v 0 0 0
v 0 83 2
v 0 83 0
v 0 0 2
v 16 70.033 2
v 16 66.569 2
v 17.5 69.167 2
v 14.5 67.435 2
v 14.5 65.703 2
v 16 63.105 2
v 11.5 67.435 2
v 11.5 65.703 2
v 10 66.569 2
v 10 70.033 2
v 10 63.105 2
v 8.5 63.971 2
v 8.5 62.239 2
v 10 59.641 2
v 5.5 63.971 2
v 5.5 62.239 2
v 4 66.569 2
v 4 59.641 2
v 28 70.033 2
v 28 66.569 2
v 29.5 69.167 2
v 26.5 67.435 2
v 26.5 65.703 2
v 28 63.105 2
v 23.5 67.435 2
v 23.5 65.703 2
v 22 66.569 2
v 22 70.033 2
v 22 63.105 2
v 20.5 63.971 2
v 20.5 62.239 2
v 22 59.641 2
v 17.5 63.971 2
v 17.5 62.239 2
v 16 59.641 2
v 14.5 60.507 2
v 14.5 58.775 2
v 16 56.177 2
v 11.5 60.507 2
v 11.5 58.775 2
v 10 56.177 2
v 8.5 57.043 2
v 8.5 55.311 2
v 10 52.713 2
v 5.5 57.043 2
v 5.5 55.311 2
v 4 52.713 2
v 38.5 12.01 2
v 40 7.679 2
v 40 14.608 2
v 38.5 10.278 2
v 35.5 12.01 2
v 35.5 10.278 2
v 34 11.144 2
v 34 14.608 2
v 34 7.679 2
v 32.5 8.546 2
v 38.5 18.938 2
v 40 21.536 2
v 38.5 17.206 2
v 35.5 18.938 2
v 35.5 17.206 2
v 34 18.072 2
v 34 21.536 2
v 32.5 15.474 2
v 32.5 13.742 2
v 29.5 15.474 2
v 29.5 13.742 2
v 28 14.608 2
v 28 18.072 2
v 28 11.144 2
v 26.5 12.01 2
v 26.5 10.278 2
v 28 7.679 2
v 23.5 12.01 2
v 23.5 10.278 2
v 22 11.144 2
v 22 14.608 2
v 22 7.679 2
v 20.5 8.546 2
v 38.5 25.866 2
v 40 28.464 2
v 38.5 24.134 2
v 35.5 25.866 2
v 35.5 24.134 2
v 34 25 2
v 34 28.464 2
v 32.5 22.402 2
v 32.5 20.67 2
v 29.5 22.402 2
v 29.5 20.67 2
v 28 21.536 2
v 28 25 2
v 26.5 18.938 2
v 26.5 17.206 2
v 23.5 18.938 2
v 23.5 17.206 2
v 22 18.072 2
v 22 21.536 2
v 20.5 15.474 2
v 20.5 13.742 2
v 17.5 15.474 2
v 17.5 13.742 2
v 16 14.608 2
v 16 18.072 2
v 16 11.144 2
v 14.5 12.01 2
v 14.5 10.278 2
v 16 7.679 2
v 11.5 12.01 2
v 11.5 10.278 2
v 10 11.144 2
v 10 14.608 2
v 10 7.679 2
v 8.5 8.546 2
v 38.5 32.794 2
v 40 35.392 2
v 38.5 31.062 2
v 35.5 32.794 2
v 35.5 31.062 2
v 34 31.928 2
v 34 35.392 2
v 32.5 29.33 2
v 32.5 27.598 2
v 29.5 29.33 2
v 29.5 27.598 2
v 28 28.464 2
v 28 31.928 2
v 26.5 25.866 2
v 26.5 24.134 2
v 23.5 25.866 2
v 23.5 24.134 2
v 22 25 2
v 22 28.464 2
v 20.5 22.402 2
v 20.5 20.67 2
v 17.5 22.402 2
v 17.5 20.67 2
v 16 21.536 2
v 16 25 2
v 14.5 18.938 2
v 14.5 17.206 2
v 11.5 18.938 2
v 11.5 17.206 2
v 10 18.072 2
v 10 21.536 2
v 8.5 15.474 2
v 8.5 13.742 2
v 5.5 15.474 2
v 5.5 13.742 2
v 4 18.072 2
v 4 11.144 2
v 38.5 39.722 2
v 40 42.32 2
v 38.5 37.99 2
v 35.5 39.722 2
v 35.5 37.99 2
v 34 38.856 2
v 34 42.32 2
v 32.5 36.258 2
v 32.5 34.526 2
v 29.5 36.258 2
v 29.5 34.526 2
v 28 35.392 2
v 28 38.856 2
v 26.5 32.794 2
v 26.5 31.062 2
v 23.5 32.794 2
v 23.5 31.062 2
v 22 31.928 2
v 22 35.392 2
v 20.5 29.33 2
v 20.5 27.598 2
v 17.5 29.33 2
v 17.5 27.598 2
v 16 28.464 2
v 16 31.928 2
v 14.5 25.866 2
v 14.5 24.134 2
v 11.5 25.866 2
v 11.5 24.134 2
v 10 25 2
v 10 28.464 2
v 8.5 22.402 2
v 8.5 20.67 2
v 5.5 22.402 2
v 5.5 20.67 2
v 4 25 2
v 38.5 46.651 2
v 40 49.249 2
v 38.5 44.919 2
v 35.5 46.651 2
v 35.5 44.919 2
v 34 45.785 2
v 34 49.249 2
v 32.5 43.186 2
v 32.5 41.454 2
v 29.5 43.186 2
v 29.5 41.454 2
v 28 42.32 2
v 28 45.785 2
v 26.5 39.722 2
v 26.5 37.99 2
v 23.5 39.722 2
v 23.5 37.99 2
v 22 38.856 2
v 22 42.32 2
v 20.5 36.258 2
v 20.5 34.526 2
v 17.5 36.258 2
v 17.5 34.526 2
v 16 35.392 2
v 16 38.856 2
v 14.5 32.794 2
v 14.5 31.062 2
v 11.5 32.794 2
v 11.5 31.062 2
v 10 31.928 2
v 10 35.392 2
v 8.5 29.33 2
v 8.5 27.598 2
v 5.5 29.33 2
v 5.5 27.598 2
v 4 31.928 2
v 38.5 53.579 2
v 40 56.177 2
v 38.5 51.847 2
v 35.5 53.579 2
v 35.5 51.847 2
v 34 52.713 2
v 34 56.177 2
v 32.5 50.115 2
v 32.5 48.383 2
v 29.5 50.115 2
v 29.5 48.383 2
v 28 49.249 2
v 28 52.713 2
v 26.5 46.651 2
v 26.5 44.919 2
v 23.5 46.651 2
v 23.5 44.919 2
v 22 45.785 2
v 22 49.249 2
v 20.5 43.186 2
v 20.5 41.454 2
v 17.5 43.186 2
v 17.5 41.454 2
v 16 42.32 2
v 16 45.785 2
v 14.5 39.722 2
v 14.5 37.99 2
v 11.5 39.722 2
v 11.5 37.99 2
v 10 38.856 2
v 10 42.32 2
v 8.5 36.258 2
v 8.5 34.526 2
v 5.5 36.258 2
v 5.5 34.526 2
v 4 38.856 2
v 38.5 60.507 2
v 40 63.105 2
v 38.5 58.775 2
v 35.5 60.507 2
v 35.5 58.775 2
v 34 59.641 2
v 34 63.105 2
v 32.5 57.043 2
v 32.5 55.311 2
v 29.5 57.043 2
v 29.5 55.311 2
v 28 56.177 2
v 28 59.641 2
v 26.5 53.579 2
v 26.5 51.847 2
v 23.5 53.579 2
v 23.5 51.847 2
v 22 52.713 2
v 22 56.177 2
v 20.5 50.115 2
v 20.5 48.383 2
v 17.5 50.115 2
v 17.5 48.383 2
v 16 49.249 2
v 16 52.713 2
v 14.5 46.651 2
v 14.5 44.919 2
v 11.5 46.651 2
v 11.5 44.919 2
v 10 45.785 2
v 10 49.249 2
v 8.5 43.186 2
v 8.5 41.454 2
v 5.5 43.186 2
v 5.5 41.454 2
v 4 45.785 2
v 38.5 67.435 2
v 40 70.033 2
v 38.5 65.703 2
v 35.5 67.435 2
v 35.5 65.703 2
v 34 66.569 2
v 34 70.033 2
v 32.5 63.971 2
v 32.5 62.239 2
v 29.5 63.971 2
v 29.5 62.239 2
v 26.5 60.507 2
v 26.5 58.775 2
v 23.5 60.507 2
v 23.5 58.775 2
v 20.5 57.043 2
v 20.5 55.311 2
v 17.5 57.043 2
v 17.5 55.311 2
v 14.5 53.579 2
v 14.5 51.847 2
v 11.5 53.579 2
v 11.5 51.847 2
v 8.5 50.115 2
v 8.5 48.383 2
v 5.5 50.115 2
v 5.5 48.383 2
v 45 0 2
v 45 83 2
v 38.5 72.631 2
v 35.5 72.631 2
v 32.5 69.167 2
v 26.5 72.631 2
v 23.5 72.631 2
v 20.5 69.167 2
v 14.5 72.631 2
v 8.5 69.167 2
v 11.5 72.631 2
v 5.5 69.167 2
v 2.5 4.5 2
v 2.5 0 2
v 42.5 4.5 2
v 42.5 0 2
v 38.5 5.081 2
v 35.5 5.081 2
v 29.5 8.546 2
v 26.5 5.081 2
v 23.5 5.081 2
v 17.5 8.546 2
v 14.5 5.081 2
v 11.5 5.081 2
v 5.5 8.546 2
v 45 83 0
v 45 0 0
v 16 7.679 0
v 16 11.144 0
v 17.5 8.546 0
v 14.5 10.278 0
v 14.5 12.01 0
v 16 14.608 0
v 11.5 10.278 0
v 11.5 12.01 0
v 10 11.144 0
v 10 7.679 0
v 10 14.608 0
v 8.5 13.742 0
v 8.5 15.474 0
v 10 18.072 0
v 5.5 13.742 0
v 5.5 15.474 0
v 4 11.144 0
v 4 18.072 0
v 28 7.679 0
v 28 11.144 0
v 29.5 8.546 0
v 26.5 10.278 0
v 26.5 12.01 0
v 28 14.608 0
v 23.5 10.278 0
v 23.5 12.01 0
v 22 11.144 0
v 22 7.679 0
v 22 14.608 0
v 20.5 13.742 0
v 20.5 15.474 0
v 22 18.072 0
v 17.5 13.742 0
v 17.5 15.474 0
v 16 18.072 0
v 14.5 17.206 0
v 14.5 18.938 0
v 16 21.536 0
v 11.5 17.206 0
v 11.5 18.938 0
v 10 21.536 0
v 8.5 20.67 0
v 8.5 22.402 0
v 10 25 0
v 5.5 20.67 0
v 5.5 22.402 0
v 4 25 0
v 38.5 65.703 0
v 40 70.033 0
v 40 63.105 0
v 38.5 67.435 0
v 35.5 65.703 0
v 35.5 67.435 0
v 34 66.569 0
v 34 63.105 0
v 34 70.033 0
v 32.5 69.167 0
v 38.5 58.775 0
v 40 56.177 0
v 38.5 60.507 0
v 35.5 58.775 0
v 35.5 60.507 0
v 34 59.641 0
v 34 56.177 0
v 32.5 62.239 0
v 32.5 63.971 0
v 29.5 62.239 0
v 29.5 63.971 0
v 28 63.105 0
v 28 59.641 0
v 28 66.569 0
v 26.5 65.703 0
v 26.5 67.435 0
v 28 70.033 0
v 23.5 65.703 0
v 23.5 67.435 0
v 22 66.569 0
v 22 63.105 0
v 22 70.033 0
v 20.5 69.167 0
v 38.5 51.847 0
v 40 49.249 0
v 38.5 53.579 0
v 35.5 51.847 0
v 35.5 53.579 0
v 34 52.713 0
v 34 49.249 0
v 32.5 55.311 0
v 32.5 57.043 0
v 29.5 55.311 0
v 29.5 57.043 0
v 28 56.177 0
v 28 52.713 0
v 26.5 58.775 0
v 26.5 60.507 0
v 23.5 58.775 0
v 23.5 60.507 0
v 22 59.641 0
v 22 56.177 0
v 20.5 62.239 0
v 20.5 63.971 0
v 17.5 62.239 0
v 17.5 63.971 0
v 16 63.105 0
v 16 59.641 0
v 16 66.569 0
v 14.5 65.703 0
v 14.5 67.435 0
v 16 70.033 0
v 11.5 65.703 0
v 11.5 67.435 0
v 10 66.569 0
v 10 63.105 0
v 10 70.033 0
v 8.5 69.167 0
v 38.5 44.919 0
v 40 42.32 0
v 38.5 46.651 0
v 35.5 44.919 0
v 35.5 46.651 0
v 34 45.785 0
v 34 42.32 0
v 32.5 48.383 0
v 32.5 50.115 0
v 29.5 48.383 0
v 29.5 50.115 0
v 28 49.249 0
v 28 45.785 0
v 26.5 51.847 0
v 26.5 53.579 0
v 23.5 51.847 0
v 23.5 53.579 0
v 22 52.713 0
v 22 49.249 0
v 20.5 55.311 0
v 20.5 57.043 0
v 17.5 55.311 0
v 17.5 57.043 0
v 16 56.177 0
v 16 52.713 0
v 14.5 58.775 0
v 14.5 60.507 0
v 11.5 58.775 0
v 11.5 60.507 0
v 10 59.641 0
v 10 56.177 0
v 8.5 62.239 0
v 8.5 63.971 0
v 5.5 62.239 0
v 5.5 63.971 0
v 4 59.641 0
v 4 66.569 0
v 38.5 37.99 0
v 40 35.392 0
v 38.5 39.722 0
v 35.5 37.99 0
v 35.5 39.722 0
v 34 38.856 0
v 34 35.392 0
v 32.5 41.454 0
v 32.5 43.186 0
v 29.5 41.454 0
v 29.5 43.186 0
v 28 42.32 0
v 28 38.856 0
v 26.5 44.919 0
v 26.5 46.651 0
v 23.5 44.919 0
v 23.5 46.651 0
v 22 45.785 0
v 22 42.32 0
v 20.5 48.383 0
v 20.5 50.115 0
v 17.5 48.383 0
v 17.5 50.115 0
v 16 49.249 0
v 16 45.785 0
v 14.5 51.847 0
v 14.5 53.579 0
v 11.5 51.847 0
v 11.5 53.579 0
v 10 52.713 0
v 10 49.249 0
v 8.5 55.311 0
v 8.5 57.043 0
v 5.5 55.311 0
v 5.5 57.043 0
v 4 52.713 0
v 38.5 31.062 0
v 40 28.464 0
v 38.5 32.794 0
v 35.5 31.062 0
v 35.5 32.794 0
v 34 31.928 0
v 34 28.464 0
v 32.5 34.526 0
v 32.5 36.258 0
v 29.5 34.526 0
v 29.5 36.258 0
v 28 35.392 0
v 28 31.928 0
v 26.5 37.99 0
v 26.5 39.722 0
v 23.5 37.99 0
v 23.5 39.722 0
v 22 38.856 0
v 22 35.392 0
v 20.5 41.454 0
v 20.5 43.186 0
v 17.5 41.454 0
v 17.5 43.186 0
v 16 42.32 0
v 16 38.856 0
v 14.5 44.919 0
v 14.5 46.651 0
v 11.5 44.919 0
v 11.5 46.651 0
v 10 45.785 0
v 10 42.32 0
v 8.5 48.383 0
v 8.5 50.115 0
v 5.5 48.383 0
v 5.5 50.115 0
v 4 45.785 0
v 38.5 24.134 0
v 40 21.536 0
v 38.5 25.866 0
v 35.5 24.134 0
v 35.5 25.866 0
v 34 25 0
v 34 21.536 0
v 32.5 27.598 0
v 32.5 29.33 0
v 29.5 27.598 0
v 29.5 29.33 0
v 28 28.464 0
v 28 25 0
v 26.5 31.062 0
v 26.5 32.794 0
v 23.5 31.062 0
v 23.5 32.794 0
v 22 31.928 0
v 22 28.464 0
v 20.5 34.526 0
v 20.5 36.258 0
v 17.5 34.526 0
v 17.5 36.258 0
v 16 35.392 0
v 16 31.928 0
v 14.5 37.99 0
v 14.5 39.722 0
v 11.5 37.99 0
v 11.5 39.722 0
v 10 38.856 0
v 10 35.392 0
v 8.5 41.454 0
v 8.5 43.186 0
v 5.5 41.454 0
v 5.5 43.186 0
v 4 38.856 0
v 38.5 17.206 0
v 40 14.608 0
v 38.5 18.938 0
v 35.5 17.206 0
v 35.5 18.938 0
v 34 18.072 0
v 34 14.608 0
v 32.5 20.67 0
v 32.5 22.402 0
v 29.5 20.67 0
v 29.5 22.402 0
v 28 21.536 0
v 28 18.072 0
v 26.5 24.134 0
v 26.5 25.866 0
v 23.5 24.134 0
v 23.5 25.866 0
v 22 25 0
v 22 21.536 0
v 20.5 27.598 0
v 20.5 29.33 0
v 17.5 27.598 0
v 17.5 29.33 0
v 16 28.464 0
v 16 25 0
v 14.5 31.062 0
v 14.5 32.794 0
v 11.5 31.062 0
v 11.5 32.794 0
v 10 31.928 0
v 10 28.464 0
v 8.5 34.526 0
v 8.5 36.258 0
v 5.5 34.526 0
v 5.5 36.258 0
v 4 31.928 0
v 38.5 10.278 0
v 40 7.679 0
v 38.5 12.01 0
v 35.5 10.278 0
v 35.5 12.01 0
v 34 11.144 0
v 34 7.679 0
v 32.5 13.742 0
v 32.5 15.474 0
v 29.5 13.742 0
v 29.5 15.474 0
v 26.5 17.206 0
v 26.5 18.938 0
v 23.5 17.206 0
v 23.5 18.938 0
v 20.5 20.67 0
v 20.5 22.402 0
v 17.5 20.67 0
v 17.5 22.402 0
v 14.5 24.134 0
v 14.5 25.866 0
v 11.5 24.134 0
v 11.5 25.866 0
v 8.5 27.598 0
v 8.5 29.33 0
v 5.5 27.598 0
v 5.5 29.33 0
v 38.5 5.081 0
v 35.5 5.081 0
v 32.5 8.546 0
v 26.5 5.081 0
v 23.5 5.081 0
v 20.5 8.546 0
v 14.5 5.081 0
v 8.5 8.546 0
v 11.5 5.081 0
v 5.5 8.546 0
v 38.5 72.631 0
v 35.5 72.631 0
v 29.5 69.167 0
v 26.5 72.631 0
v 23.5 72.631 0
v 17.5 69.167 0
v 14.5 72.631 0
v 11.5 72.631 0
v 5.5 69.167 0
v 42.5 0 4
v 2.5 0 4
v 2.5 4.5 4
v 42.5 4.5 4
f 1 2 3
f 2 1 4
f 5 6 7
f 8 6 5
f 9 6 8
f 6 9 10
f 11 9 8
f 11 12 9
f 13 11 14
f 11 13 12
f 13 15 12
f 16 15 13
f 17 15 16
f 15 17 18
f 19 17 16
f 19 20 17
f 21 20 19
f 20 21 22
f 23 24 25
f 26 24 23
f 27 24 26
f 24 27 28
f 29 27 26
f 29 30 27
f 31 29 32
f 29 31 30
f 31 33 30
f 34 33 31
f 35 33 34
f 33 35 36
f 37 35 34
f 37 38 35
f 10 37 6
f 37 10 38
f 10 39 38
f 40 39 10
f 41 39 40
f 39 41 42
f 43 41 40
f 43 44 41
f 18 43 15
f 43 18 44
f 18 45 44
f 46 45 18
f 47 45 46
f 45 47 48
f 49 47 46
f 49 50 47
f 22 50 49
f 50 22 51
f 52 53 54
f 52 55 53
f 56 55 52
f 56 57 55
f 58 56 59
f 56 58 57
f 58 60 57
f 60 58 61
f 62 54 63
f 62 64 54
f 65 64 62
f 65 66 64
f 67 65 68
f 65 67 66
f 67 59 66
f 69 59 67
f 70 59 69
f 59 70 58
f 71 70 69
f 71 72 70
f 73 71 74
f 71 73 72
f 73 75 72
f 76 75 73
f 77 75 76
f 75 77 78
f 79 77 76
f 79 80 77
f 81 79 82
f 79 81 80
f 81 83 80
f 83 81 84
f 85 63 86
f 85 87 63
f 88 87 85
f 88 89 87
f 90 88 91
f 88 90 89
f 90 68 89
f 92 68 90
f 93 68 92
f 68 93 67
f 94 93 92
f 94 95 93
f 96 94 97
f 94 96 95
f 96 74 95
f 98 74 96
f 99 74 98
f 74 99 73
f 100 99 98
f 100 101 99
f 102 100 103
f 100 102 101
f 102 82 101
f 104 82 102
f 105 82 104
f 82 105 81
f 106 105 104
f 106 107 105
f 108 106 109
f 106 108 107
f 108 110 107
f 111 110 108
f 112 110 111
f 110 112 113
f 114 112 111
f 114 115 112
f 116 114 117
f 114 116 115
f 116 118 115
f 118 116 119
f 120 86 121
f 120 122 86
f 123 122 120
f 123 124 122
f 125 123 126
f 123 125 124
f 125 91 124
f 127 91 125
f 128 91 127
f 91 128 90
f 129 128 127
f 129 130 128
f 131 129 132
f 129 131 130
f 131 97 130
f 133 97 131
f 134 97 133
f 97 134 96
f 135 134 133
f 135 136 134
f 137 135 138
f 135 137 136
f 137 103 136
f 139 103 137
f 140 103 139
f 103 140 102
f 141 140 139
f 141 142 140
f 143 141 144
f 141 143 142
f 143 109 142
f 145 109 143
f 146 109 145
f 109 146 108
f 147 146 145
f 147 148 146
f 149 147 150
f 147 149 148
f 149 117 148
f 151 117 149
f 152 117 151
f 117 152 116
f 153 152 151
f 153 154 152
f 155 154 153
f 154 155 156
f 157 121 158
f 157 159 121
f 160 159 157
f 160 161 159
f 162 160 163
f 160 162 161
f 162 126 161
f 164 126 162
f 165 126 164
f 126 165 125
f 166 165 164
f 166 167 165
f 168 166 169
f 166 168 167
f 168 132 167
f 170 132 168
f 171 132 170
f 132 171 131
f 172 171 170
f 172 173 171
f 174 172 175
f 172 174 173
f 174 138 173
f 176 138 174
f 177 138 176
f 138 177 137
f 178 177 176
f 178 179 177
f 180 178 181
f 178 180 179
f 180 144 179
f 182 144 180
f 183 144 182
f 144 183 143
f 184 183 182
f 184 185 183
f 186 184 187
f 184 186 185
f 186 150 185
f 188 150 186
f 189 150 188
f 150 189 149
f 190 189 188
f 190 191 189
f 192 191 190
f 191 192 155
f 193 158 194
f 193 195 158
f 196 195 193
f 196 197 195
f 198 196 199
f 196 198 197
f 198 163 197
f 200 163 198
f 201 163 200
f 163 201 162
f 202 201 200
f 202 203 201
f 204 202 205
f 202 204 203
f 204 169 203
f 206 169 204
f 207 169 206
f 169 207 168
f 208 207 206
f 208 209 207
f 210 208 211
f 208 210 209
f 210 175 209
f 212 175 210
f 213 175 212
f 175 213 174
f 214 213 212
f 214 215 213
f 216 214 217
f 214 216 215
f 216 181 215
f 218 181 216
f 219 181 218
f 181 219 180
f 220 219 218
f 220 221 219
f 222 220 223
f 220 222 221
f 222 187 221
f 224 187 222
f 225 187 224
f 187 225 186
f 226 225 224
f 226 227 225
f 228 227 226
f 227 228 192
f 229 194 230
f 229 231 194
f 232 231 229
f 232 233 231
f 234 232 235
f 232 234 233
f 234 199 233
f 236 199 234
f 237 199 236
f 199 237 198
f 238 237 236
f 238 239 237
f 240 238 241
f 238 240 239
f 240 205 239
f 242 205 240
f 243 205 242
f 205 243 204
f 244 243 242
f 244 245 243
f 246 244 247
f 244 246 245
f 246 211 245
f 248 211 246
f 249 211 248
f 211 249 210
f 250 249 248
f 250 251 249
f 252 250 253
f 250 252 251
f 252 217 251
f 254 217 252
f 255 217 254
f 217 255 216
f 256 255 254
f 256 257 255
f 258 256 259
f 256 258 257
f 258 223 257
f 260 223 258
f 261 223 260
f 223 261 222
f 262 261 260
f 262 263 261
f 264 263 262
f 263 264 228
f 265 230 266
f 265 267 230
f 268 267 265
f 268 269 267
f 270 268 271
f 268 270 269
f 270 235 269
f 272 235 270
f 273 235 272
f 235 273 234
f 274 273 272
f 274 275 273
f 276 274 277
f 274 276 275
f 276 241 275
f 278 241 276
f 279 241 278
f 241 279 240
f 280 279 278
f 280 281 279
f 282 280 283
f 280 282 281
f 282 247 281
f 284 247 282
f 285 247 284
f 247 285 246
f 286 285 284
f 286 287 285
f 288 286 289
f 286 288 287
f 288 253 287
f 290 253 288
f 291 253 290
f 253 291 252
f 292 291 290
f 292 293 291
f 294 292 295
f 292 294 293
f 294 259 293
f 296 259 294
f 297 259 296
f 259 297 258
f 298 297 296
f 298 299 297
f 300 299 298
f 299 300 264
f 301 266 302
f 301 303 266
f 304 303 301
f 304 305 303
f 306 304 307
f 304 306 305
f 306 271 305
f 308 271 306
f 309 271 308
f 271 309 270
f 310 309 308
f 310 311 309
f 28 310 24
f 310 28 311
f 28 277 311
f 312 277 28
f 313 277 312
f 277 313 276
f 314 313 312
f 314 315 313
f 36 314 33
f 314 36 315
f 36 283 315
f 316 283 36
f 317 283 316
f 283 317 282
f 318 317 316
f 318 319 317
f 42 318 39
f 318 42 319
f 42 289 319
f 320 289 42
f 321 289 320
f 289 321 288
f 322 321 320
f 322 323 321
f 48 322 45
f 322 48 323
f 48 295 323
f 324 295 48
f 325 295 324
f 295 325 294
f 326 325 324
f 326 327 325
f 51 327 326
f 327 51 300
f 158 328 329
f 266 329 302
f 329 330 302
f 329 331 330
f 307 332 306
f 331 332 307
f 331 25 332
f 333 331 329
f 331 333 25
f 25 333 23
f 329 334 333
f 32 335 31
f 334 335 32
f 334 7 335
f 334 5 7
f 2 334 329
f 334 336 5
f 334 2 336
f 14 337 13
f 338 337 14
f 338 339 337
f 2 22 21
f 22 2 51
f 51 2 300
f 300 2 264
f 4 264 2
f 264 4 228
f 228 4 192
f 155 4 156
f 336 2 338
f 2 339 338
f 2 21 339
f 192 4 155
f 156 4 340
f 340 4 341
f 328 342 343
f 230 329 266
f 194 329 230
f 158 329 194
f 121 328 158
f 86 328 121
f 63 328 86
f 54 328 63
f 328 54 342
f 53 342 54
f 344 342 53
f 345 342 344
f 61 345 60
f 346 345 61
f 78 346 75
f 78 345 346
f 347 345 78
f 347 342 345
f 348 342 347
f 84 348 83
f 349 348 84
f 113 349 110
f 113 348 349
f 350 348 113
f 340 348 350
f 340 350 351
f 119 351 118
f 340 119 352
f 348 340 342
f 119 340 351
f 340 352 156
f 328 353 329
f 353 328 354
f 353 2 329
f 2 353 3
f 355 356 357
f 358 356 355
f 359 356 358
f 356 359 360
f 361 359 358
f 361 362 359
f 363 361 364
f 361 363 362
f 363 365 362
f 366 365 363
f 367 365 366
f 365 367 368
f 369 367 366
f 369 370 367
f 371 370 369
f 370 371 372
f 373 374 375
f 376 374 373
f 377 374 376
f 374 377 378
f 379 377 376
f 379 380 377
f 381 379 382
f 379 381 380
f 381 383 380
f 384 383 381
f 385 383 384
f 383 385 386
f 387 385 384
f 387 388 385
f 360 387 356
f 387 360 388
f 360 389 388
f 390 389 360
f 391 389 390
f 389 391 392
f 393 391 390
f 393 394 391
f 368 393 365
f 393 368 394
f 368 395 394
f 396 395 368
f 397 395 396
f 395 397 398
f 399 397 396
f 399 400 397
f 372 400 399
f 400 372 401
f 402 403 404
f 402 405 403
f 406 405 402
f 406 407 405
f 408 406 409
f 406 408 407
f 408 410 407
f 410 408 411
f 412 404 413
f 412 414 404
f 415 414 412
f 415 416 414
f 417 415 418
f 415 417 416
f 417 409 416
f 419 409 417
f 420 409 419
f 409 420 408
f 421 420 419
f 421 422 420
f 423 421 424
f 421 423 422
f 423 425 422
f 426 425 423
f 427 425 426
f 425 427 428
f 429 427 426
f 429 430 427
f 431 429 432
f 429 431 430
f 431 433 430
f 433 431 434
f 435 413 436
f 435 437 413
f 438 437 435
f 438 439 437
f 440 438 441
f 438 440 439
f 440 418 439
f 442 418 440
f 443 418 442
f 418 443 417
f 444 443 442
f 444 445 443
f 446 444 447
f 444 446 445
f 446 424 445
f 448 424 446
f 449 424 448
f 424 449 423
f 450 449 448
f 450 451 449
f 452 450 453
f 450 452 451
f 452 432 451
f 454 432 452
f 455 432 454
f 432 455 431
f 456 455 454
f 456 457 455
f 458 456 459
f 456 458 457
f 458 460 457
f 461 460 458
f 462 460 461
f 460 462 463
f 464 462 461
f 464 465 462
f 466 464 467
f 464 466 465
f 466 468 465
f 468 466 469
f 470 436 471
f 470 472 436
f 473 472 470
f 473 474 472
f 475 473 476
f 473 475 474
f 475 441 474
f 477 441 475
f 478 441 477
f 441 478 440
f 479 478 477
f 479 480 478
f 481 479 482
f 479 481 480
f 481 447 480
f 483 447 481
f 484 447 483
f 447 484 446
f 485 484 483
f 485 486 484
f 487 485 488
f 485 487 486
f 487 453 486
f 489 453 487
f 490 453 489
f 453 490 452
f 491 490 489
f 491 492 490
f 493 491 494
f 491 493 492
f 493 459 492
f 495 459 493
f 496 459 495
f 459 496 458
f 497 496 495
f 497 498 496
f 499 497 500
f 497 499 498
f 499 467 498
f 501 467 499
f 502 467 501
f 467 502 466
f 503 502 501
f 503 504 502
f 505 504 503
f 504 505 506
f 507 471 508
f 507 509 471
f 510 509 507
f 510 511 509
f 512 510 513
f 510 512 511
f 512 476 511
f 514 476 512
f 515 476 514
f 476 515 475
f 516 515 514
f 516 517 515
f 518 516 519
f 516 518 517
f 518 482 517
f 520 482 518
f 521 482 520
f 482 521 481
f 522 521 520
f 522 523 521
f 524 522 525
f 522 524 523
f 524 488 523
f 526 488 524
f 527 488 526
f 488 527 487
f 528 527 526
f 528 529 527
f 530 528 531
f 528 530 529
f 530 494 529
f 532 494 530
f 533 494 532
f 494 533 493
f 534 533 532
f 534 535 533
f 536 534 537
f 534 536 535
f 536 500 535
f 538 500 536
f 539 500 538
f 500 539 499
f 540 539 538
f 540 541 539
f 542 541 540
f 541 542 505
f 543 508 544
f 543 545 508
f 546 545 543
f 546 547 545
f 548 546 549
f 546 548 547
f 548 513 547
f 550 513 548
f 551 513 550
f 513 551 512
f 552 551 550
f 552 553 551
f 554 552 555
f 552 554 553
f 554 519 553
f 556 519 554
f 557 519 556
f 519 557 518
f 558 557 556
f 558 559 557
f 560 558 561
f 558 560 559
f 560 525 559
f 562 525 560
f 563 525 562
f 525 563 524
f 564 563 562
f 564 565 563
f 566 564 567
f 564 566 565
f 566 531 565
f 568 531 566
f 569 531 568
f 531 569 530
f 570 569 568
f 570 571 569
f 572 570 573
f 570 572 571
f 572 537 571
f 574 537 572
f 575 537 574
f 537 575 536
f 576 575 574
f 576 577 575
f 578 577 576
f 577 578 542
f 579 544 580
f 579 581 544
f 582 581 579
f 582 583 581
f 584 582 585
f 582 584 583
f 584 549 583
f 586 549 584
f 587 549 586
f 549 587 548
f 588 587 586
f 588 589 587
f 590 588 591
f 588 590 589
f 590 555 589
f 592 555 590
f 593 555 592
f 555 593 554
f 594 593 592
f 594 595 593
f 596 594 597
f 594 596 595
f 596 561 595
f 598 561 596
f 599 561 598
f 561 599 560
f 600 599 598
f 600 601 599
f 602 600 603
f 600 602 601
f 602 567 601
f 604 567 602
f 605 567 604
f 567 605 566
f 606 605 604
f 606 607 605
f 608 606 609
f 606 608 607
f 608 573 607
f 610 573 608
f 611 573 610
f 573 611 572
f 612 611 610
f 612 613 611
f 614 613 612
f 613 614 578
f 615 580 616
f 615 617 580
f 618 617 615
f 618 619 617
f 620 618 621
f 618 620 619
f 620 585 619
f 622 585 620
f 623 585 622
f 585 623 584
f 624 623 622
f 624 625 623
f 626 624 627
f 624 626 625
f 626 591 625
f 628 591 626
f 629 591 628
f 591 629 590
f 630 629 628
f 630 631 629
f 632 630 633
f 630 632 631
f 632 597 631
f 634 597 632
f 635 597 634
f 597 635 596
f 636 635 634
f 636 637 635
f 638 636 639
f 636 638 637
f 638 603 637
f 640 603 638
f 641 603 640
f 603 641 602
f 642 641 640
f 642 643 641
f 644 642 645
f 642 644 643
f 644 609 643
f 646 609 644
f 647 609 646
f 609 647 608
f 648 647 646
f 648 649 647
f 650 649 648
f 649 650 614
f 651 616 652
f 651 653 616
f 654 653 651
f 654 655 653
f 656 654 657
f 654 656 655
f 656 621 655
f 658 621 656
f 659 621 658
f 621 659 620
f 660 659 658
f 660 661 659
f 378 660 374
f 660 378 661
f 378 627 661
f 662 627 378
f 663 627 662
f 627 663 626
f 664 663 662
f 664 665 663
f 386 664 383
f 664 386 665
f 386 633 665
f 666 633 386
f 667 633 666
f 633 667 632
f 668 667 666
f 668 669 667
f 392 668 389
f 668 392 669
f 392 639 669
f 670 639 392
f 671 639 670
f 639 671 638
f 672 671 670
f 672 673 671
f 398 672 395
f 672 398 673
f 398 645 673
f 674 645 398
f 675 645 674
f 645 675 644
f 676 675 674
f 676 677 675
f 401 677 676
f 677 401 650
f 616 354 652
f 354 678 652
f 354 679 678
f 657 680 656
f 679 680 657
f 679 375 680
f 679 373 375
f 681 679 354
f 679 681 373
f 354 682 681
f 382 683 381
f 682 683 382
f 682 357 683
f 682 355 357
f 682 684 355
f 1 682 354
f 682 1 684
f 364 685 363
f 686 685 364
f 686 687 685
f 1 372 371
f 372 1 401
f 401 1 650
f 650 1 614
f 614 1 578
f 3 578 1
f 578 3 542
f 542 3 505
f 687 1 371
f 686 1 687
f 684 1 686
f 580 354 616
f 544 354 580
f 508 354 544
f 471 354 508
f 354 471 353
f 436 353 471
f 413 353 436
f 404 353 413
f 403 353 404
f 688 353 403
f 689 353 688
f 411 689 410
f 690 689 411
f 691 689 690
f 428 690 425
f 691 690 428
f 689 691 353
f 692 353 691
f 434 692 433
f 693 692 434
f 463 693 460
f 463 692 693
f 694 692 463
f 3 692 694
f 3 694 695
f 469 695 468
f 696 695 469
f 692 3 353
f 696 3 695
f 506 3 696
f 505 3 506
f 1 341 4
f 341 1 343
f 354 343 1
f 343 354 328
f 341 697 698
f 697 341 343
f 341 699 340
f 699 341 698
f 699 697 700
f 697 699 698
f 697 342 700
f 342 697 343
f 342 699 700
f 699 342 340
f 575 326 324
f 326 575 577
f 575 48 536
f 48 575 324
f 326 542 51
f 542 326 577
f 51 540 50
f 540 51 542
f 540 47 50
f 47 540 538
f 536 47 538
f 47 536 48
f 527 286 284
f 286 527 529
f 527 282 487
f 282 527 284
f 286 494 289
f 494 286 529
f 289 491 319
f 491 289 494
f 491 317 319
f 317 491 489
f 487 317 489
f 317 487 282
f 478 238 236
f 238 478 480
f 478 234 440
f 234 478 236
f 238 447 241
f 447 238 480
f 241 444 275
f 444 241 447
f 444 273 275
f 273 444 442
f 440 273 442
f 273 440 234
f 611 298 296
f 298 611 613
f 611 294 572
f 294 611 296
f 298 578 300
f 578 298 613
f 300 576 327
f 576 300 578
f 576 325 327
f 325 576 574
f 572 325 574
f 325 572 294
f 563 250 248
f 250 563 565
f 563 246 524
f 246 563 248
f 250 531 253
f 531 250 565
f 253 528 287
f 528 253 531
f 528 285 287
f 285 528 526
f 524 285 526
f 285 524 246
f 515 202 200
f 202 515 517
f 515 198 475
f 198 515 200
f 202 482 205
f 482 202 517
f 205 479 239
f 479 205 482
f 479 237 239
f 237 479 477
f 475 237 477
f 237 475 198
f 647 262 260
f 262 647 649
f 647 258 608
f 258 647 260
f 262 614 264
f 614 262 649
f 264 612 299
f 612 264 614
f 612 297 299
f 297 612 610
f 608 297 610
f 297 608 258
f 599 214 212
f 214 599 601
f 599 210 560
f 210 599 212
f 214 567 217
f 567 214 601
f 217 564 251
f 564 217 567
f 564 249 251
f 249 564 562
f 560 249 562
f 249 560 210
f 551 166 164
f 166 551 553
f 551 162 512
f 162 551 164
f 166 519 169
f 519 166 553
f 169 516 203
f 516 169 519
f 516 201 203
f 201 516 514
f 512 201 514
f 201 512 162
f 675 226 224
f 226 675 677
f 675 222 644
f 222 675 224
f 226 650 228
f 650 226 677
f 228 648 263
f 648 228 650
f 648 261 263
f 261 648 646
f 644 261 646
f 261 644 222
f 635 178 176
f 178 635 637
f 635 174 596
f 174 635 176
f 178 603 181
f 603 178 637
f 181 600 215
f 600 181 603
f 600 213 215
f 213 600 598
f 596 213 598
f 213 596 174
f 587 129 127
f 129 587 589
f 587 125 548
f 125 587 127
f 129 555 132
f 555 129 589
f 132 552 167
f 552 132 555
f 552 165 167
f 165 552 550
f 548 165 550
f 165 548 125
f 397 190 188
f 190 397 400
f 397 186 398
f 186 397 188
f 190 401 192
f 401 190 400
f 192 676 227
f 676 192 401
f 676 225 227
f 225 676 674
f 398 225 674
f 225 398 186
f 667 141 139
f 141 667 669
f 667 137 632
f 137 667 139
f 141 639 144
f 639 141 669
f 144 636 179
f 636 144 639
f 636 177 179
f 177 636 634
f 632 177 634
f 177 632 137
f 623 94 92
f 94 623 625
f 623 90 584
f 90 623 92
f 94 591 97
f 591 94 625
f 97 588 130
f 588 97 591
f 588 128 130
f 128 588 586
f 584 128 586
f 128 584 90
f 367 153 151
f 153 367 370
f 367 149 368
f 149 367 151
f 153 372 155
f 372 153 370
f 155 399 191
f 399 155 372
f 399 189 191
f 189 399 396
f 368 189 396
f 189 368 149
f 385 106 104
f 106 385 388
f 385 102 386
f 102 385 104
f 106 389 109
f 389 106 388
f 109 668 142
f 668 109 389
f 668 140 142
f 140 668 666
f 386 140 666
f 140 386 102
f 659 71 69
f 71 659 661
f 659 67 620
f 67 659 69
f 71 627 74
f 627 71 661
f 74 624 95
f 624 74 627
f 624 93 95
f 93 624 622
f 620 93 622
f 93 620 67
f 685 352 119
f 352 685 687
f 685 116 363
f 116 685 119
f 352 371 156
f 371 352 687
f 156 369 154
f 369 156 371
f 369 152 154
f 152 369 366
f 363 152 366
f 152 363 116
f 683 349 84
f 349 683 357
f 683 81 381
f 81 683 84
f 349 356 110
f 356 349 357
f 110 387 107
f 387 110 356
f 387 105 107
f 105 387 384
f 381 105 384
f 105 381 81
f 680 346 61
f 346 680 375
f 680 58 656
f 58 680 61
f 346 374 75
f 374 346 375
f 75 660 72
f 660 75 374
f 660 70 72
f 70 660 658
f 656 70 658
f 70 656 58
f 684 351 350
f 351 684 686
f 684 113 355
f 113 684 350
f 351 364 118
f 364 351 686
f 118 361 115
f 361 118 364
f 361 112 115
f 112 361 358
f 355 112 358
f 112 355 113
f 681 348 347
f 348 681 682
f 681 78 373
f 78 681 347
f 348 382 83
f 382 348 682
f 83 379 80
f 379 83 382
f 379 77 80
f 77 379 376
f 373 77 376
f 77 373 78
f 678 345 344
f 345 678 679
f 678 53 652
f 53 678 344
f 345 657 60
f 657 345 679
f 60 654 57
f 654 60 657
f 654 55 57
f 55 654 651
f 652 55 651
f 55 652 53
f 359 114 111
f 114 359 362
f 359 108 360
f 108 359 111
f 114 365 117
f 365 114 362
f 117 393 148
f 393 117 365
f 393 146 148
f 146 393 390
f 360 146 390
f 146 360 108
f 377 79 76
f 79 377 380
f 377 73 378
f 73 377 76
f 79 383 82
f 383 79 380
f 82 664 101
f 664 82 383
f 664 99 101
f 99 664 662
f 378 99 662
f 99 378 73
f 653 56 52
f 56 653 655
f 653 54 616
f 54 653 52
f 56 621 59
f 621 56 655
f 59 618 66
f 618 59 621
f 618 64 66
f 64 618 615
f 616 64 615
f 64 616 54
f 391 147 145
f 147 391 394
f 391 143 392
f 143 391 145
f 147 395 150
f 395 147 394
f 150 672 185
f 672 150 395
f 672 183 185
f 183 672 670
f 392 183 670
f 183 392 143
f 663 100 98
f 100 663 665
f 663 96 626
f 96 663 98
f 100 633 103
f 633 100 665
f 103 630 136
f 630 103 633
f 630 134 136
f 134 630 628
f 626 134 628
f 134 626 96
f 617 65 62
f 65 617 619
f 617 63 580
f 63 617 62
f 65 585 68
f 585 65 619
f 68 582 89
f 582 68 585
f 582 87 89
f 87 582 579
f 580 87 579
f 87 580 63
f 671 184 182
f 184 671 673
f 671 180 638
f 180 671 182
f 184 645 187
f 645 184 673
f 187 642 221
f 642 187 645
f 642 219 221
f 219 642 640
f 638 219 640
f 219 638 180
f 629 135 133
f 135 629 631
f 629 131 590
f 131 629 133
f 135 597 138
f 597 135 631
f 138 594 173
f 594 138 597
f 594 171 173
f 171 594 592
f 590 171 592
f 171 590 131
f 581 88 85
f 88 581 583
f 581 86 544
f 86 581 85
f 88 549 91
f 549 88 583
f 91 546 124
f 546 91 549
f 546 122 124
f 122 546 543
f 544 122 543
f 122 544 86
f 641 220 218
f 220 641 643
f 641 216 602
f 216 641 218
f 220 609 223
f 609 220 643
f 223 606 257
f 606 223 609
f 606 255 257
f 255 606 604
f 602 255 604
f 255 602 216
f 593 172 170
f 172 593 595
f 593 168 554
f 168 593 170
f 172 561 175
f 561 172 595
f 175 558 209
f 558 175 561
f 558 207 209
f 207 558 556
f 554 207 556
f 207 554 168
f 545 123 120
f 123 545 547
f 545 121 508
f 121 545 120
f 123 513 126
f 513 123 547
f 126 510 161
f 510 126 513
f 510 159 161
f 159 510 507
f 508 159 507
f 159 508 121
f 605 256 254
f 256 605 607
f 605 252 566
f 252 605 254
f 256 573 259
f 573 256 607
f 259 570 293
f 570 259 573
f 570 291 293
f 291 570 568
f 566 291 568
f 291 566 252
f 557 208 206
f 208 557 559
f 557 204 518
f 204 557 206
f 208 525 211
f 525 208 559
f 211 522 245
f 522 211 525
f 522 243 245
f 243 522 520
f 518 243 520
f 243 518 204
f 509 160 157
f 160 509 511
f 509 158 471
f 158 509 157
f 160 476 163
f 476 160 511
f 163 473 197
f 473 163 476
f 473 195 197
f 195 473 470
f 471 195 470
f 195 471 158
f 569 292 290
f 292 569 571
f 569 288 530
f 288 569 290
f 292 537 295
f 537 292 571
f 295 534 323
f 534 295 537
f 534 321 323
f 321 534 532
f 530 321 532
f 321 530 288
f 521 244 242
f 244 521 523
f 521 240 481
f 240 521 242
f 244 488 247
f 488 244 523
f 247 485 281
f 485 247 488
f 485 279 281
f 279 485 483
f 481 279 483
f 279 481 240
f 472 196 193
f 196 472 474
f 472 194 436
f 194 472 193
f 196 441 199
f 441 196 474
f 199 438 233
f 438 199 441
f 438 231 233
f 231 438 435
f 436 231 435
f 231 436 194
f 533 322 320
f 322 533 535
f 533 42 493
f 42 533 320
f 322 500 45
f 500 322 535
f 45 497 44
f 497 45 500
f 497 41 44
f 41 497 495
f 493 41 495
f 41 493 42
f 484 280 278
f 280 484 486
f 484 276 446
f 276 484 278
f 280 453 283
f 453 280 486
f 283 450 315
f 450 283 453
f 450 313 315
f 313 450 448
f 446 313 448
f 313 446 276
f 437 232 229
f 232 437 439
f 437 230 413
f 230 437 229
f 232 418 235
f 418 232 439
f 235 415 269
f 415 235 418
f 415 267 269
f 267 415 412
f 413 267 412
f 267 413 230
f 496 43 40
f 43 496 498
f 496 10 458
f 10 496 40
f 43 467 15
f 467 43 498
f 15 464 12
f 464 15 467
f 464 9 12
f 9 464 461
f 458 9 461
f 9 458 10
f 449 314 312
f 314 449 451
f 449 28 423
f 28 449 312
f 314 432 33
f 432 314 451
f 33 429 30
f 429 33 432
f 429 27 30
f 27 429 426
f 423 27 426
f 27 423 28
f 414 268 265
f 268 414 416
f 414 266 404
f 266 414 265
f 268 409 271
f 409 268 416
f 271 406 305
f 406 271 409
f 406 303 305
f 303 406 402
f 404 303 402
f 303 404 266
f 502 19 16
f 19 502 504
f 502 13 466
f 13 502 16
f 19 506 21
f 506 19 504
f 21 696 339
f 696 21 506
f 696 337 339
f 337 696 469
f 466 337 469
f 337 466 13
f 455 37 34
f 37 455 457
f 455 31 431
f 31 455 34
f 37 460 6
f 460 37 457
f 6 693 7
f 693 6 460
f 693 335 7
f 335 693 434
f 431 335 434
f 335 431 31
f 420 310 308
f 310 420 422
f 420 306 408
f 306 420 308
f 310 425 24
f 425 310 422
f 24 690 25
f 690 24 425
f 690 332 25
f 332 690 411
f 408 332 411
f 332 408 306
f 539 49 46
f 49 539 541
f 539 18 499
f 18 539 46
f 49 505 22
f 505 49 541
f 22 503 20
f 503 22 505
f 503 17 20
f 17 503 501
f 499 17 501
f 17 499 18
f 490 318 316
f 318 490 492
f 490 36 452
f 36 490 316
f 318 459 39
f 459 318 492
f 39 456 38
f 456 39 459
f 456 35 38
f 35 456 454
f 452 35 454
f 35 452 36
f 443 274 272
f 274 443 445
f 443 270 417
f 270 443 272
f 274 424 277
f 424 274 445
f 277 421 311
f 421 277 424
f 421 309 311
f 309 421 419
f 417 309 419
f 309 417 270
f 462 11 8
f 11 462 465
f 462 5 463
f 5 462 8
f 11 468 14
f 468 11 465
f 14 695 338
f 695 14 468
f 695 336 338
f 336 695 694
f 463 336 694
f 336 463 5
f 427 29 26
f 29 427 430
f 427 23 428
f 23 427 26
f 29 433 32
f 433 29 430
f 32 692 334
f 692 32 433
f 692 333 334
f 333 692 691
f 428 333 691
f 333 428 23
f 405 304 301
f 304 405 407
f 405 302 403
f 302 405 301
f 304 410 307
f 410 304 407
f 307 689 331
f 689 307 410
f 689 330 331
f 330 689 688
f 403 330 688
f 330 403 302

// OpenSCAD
length_box = 86;
width_box = 50;


/* follwing 4 lines are parameters for the generation
of the solid hexagons - if rbase and rtop were equal
to 2 the hexagons generated would fill the array
*/

zbase =-2;
ztop   =2;
rbase =1.5;
rtop   =1.5;



width = width_box - 5;
length = length_box - 3;

difference()
{


union()
{

cube(size=[width,length,2]);
translate([2.5,0,0])
cube(size =[width -5,4.5,4]);

}

translate([15,25,0])
scale([2,2,2])
hex_array();


}





module hex_array()
{





 for ( y = [12*sqrt(3),10*sqrt(3),8*sqrt(3),6*sqrt(3),4*sqrt(3),2*sqrt(3),0,-2*sqrt(3),-4*sqrt(3)])
{
 for (x = [-4,2,8])
{
     translate([x,y,0])
         hexagon();
    }

    }


for ( y = [-5*sqrt(3),-3*sqrt(3),-sqrt(3),sqrt(3),3*sqrt(3),5*sqrt(3),7*sqrt(3),9*sqrt(3),11*sqrt(3),13*sqrt(3)])
{
 for (x = [-1,5,11])
{
     translate([x,y,0])
       hexagon();
    }

    }



module hexagon()
{
polyhedron
       (points = [
        [ rbase*cos(0*(360/6)), rbase*sin(0*(360/6)),zbase],
        [ rbase*cos(1*(360/6)), rbase*sin(1*(360/6)),zbase],
        [ rbase*cos(2*(360/6)), rbase*sin(2*(360/6)),zbase],
        [ rbase*cos(3*(360/6)), rbase*sin(3*(360/6)),zbase],
        [ rbase*cos(4*(360/6)), rbase*sin(4*(360/6)),zbase],
        [ rbase*cos(5*(360/6)), rbase*sin(5*(360/6)),zbase],
        [ rtop*cos(0*(360/6)), rtop*sin(0*(360/6)),ztop],
        [ rtop*cos(1*(360/6)), rtop*sin(1*(360/6)),ztop],
        [ rtop*cos(2*(360/6)), rtop*sin(2*(360/6)),ztop],
        [ rtop*cos(3*(360/6)), rtop*sin(3*(360/6)),ztop],
        [ rtop*cos(4*(360/6)), rtop*sin(4*(360/6)),ztop],
        [ rtop*cos(5*(360/6)), rtop*sin(5*(360/6)),ztop],

       ],
           triangles =[
                              [0,4,5],[0,3,4],[0,2,3],[0,1,2],
                             [10,6,11],[9,6,10],[8,6,9],
                              [7,6,8],[0,11,6],[0,5,11],
                              [5,10,11],[5,4,10],
                              [4,9,10],[4,3,9],[3,8,9],[3,2,8],
                              [2,7,8],[2,1,7],[1,6,7],[1,0,6],
              ]
              );
 }

}
